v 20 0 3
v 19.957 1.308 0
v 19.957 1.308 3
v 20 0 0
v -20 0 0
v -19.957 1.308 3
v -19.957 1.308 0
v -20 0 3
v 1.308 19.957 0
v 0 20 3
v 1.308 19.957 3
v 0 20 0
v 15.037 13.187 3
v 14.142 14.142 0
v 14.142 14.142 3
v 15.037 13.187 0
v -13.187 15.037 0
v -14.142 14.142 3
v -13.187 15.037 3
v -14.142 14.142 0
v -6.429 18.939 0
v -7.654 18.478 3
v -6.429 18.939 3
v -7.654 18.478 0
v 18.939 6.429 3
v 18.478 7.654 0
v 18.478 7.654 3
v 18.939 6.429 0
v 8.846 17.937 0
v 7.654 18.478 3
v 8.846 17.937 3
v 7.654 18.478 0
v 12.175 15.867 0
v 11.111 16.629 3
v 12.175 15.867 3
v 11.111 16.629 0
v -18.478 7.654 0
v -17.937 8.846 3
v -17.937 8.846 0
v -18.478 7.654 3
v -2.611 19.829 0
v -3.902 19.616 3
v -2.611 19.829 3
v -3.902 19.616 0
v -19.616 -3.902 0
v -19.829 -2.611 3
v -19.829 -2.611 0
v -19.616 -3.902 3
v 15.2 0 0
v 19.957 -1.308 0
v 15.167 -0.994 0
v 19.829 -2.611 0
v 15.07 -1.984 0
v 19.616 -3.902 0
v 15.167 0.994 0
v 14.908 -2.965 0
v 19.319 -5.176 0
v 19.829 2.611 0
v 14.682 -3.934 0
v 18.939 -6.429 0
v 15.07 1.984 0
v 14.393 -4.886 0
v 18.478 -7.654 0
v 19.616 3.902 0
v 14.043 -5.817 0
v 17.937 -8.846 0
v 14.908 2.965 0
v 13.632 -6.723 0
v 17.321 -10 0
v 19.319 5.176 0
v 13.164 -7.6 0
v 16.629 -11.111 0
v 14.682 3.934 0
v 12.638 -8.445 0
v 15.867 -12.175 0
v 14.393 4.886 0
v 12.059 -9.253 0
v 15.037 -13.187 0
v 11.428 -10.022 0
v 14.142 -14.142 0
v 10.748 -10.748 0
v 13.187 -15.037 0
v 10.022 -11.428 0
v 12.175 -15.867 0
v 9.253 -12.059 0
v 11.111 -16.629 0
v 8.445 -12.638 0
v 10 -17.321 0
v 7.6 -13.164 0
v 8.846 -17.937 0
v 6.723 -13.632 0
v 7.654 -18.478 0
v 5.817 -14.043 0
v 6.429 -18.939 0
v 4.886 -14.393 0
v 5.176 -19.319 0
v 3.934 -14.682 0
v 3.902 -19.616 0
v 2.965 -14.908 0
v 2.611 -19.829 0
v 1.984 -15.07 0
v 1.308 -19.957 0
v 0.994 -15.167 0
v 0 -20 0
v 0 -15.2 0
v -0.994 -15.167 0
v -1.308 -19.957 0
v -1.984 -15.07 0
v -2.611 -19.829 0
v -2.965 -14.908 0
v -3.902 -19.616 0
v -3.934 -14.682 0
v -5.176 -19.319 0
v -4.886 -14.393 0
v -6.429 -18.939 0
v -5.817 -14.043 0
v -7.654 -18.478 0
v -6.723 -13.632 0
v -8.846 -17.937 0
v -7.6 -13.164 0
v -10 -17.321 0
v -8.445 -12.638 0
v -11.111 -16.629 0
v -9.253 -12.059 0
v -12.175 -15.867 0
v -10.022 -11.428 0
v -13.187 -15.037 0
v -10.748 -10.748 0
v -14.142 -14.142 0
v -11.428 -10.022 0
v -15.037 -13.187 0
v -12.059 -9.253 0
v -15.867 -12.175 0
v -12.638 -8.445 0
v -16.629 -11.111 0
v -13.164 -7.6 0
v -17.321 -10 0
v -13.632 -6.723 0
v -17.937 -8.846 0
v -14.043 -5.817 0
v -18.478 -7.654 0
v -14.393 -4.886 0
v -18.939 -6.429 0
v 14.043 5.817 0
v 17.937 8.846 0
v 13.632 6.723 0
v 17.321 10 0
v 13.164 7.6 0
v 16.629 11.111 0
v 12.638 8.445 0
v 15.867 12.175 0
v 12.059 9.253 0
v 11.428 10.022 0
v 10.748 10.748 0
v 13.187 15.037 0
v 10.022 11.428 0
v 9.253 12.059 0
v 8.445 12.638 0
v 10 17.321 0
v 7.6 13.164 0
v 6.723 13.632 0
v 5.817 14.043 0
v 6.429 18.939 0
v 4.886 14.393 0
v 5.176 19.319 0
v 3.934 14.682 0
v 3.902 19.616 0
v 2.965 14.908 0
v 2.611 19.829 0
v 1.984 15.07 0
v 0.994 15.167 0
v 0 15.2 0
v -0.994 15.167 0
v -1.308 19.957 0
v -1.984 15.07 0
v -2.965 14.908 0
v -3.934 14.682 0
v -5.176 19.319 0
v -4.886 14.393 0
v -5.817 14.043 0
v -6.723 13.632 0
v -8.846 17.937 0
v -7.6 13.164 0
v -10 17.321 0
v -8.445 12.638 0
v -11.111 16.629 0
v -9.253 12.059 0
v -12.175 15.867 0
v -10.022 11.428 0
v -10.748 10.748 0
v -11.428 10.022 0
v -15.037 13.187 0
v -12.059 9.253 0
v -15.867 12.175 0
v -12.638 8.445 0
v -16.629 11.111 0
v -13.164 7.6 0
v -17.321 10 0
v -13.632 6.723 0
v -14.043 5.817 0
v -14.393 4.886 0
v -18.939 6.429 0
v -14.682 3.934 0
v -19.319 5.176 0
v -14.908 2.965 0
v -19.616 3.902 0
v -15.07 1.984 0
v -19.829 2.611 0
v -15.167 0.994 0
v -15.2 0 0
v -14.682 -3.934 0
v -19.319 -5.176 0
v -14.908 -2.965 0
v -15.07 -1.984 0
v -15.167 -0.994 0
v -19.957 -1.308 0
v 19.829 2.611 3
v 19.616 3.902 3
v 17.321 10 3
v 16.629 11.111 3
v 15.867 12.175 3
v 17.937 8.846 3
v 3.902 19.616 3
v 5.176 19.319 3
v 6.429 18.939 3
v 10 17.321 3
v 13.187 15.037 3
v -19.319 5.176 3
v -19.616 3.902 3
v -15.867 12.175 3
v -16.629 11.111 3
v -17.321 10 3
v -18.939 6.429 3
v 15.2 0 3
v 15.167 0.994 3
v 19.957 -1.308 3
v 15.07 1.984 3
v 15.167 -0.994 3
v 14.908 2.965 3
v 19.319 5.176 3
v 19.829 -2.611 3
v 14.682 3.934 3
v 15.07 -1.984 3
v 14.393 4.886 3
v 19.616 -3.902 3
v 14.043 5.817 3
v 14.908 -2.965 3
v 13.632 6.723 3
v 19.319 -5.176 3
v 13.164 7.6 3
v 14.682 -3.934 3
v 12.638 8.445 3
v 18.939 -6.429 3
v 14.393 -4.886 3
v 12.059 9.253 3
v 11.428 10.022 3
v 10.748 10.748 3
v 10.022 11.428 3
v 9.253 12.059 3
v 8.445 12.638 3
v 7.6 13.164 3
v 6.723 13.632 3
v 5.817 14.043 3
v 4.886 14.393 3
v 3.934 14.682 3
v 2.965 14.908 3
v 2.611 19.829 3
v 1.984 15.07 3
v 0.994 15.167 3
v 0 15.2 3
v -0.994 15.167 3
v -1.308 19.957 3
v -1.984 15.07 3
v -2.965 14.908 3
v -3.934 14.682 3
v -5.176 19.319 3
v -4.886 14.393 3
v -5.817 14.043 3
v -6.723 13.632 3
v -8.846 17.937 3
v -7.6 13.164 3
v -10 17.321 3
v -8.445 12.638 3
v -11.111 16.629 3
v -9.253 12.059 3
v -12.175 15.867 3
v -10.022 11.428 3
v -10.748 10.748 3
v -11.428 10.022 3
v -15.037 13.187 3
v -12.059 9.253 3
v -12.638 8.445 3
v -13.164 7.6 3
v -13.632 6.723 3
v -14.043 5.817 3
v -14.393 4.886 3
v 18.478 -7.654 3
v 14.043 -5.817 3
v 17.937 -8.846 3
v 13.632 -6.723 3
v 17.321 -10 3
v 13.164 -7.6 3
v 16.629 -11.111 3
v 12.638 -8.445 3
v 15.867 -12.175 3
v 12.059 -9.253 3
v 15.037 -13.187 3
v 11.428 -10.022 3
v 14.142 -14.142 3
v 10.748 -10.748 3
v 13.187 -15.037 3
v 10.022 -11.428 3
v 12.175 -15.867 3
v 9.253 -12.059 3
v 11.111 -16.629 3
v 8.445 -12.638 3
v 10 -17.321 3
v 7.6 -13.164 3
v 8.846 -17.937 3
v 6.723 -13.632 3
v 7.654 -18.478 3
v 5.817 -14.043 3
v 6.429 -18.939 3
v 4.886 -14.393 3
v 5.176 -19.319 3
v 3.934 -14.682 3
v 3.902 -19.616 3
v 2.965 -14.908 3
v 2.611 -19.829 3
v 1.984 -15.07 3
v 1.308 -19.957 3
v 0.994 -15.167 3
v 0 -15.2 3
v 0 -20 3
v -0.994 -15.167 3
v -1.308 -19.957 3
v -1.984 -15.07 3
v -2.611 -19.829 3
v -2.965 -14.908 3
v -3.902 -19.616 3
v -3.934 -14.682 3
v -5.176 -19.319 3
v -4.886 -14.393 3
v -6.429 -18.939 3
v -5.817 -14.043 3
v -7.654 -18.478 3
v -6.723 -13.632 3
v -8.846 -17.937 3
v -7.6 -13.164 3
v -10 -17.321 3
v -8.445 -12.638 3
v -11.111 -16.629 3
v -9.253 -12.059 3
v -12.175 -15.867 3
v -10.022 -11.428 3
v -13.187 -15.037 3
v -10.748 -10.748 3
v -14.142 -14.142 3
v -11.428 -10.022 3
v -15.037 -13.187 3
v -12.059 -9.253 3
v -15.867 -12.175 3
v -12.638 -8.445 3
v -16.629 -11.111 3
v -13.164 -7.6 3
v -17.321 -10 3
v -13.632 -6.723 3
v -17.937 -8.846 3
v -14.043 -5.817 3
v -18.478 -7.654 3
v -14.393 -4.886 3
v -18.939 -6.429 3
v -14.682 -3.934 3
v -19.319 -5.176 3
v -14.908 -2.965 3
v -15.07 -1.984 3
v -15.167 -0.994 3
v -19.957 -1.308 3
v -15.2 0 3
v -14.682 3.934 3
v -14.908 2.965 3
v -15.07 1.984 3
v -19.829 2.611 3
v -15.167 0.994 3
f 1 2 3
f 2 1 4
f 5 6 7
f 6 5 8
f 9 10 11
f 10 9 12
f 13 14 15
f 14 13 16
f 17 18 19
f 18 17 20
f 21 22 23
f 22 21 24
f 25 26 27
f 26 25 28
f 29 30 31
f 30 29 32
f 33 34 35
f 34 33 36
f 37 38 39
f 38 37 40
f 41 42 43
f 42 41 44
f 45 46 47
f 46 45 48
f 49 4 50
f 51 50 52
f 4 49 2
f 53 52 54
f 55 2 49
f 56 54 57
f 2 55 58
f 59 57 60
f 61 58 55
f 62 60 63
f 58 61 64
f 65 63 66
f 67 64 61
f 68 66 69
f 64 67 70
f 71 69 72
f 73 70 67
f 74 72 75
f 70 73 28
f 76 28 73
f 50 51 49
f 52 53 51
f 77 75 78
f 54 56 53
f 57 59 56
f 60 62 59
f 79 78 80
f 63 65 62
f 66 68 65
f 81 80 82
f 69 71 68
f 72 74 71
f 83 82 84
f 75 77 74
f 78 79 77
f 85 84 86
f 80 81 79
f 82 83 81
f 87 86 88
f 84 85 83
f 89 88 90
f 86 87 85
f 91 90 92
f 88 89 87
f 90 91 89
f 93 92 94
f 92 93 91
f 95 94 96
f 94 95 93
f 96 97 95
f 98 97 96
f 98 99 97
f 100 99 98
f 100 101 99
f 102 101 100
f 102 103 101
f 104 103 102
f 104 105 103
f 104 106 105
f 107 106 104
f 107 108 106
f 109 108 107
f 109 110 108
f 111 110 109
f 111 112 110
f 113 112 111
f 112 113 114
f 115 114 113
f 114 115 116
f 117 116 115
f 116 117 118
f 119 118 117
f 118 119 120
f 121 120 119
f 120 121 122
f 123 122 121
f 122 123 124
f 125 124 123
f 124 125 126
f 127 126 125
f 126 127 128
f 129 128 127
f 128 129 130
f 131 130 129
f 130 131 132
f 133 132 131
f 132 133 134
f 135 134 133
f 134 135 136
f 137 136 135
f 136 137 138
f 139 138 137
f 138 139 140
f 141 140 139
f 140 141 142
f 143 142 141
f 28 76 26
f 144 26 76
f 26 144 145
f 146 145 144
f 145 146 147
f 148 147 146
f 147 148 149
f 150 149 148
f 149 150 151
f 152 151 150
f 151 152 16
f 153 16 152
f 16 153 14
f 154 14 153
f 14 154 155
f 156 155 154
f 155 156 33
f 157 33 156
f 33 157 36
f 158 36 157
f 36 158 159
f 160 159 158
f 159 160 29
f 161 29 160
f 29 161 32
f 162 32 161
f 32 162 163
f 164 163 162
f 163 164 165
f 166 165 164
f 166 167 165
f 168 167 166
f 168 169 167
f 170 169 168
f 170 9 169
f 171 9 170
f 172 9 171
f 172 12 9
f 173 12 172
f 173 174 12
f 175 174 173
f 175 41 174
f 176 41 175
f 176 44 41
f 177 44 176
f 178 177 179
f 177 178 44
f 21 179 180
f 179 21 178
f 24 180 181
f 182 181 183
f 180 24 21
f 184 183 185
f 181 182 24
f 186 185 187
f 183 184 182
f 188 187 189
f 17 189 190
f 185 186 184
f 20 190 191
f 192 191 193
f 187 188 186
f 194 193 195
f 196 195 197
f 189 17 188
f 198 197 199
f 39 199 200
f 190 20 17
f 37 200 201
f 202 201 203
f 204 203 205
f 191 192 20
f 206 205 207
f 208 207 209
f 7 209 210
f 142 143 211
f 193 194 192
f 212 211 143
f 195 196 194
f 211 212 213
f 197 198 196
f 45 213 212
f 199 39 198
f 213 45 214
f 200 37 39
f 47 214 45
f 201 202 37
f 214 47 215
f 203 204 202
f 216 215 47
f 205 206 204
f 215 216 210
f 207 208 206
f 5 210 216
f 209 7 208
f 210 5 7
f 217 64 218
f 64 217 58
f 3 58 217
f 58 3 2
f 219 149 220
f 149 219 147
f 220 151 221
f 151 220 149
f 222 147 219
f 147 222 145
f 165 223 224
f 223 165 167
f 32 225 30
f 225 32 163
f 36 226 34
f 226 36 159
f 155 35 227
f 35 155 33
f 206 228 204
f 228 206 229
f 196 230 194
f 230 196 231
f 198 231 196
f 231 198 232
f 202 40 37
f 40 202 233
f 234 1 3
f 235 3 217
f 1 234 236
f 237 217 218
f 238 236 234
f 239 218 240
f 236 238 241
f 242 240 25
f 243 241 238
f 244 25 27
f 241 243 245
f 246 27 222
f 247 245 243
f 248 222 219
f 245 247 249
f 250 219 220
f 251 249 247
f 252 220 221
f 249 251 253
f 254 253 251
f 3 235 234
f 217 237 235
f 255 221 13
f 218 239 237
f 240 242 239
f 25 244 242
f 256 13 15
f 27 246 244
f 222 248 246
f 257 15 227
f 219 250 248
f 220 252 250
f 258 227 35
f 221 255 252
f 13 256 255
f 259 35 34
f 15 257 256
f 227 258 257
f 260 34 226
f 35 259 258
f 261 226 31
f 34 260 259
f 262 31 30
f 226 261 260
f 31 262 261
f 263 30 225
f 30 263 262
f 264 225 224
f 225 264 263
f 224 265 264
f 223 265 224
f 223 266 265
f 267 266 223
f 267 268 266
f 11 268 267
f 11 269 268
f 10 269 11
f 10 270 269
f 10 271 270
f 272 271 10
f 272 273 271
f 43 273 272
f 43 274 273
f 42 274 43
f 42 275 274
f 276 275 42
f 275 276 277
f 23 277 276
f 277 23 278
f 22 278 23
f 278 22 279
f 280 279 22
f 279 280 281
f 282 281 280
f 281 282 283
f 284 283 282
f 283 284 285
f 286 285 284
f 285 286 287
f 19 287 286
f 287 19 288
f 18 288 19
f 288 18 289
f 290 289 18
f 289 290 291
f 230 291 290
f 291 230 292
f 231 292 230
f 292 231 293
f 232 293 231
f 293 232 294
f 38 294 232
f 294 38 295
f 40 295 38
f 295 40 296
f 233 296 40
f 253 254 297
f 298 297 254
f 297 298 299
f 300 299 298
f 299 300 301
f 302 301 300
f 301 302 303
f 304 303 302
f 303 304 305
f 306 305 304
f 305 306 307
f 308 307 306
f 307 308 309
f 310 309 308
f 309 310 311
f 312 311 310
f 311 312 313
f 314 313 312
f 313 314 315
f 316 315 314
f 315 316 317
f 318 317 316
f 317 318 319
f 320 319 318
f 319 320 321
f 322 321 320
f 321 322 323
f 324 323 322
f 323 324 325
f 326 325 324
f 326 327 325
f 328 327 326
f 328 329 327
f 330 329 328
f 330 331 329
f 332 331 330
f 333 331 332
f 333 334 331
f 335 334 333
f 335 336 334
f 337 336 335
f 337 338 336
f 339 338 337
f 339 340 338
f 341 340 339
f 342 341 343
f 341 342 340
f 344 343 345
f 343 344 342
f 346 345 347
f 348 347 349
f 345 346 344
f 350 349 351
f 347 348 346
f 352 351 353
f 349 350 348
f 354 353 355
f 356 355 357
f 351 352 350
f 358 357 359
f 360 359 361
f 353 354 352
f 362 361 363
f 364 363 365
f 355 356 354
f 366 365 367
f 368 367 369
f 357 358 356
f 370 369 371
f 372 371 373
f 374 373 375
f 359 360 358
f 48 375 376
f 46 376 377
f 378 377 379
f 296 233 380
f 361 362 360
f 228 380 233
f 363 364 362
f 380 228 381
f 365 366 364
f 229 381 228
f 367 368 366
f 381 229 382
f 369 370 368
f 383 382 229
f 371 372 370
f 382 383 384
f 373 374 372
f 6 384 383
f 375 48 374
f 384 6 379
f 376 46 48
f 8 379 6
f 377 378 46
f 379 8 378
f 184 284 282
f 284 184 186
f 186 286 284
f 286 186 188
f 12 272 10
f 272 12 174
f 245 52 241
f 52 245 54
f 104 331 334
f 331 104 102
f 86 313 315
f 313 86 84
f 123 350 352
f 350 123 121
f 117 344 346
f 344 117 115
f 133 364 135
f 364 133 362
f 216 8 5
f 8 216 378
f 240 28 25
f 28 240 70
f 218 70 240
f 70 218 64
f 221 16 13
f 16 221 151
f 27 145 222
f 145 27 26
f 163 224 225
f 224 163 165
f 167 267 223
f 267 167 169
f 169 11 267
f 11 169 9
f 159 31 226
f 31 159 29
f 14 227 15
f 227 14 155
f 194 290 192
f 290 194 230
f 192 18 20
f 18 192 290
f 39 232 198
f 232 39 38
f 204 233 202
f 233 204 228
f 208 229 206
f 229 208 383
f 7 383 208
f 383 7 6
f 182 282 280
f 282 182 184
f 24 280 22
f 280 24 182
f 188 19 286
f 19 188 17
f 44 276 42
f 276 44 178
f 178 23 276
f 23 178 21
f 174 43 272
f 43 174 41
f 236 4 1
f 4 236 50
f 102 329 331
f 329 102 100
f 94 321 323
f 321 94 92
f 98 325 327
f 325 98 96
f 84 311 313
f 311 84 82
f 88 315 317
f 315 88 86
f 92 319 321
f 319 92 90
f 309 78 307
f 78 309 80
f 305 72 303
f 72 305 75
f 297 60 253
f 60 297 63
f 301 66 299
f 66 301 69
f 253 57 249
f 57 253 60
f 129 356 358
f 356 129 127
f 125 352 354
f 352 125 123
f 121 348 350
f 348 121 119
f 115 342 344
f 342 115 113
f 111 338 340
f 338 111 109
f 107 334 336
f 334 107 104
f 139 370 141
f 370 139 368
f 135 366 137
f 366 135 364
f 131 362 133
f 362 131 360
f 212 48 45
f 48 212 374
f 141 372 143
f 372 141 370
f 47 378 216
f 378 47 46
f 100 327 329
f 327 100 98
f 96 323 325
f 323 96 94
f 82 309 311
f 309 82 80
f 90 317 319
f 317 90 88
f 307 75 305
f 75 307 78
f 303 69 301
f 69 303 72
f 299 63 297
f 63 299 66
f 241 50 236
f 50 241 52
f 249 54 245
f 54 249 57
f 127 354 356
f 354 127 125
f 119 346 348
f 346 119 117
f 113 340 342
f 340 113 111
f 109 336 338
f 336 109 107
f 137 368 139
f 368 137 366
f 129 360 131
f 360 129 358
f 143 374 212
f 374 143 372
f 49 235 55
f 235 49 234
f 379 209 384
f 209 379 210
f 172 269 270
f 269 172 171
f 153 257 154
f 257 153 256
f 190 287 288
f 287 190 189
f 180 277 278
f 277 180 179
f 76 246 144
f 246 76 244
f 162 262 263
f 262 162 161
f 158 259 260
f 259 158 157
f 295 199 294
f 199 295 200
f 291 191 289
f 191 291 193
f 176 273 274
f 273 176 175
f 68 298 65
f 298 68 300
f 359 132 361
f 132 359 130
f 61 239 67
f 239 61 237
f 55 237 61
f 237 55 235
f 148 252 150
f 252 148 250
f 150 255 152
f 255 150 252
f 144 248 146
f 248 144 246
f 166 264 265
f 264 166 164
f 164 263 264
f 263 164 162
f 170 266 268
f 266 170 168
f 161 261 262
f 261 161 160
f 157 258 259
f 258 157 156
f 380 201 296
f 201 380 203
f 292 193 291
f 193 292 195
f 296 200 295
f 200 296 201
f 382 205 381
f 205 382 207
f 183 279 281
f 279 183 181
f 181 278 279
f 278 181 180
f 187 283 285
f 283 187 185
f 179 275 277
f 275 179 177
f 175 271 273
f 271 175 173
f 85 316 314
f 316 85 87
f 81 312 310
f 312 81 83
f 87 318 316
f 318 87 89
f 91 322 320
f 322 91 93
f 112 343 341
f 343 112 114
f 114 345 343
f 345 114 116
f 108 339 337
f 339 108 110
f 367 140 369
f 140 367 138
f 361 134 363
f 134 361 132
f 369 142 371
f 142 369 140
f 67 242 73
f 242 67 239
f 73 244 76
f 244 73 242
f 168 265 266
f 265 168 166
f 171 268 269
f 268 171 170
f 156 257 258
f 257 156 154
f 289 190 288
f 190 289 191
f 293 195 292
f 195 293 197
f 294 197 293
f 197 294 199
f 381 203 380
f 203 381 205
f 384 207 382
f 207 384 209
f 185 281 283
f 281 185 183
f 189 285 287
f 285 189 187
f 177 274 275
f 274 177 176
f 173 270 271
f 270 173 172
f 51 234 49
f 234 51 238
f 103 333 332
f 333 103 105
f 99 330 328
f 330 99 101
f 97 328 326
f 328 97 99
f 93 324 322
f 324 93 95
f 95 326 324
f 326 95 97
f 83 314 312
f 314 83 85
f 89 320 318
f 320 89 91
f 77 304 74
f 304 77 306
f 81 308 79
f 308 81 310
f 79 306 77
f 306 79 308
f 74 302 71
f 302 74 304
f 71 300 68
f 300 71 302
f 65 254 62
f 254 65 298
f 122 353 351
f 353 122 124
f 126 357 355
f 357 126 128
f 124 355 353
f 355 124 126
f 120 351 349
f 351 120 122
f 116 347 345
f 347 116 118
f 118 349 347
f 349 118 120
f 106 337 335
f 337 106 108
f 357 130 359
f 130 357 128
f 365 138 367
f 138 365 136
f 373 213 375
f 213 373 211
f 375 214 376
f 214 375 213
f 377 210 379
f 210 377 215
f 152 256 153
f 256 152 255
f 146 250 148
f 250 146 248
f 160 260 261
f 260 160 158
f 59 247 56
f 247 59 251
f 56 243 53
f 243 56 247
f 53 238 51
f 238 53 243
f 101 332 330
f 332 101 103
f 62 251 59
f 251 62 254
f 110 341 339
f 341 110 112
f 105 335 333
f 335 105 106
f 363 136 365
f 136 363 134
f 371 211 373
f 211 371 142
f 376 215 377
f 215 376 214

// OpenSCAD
// ---------------------------------------------------------------------------
// speaker_ring_30mm.scad
// Seals a 30 mm driver onto the 40 mm speaker grille in the body.
// Glue the flat back face onto the three existing glue blocks (inside the
// front wall, x = -15 / 0 / +15, z = 52), then glue the driver into the bore.
// Without this ring a 30 mm speaker leaks sound sideways into the hollow body
// and loses roughly half its volume.
// ---------------------------------------------------------------------------

$fn = 96;

ring_od = 40.0;   // matches the grille + glue-block spread
ring_id = 30.4;   // 30 mm driver, slip fit + glue
ring_h  = 3.0;

module ring() {
    difference() {
        cylinder(d = ring_od, h = ring_h);
        translate([0, 0, -0.1])
            cylinder(d = ring_id, h = ring_h + 0.2);
    }
}

ring();
